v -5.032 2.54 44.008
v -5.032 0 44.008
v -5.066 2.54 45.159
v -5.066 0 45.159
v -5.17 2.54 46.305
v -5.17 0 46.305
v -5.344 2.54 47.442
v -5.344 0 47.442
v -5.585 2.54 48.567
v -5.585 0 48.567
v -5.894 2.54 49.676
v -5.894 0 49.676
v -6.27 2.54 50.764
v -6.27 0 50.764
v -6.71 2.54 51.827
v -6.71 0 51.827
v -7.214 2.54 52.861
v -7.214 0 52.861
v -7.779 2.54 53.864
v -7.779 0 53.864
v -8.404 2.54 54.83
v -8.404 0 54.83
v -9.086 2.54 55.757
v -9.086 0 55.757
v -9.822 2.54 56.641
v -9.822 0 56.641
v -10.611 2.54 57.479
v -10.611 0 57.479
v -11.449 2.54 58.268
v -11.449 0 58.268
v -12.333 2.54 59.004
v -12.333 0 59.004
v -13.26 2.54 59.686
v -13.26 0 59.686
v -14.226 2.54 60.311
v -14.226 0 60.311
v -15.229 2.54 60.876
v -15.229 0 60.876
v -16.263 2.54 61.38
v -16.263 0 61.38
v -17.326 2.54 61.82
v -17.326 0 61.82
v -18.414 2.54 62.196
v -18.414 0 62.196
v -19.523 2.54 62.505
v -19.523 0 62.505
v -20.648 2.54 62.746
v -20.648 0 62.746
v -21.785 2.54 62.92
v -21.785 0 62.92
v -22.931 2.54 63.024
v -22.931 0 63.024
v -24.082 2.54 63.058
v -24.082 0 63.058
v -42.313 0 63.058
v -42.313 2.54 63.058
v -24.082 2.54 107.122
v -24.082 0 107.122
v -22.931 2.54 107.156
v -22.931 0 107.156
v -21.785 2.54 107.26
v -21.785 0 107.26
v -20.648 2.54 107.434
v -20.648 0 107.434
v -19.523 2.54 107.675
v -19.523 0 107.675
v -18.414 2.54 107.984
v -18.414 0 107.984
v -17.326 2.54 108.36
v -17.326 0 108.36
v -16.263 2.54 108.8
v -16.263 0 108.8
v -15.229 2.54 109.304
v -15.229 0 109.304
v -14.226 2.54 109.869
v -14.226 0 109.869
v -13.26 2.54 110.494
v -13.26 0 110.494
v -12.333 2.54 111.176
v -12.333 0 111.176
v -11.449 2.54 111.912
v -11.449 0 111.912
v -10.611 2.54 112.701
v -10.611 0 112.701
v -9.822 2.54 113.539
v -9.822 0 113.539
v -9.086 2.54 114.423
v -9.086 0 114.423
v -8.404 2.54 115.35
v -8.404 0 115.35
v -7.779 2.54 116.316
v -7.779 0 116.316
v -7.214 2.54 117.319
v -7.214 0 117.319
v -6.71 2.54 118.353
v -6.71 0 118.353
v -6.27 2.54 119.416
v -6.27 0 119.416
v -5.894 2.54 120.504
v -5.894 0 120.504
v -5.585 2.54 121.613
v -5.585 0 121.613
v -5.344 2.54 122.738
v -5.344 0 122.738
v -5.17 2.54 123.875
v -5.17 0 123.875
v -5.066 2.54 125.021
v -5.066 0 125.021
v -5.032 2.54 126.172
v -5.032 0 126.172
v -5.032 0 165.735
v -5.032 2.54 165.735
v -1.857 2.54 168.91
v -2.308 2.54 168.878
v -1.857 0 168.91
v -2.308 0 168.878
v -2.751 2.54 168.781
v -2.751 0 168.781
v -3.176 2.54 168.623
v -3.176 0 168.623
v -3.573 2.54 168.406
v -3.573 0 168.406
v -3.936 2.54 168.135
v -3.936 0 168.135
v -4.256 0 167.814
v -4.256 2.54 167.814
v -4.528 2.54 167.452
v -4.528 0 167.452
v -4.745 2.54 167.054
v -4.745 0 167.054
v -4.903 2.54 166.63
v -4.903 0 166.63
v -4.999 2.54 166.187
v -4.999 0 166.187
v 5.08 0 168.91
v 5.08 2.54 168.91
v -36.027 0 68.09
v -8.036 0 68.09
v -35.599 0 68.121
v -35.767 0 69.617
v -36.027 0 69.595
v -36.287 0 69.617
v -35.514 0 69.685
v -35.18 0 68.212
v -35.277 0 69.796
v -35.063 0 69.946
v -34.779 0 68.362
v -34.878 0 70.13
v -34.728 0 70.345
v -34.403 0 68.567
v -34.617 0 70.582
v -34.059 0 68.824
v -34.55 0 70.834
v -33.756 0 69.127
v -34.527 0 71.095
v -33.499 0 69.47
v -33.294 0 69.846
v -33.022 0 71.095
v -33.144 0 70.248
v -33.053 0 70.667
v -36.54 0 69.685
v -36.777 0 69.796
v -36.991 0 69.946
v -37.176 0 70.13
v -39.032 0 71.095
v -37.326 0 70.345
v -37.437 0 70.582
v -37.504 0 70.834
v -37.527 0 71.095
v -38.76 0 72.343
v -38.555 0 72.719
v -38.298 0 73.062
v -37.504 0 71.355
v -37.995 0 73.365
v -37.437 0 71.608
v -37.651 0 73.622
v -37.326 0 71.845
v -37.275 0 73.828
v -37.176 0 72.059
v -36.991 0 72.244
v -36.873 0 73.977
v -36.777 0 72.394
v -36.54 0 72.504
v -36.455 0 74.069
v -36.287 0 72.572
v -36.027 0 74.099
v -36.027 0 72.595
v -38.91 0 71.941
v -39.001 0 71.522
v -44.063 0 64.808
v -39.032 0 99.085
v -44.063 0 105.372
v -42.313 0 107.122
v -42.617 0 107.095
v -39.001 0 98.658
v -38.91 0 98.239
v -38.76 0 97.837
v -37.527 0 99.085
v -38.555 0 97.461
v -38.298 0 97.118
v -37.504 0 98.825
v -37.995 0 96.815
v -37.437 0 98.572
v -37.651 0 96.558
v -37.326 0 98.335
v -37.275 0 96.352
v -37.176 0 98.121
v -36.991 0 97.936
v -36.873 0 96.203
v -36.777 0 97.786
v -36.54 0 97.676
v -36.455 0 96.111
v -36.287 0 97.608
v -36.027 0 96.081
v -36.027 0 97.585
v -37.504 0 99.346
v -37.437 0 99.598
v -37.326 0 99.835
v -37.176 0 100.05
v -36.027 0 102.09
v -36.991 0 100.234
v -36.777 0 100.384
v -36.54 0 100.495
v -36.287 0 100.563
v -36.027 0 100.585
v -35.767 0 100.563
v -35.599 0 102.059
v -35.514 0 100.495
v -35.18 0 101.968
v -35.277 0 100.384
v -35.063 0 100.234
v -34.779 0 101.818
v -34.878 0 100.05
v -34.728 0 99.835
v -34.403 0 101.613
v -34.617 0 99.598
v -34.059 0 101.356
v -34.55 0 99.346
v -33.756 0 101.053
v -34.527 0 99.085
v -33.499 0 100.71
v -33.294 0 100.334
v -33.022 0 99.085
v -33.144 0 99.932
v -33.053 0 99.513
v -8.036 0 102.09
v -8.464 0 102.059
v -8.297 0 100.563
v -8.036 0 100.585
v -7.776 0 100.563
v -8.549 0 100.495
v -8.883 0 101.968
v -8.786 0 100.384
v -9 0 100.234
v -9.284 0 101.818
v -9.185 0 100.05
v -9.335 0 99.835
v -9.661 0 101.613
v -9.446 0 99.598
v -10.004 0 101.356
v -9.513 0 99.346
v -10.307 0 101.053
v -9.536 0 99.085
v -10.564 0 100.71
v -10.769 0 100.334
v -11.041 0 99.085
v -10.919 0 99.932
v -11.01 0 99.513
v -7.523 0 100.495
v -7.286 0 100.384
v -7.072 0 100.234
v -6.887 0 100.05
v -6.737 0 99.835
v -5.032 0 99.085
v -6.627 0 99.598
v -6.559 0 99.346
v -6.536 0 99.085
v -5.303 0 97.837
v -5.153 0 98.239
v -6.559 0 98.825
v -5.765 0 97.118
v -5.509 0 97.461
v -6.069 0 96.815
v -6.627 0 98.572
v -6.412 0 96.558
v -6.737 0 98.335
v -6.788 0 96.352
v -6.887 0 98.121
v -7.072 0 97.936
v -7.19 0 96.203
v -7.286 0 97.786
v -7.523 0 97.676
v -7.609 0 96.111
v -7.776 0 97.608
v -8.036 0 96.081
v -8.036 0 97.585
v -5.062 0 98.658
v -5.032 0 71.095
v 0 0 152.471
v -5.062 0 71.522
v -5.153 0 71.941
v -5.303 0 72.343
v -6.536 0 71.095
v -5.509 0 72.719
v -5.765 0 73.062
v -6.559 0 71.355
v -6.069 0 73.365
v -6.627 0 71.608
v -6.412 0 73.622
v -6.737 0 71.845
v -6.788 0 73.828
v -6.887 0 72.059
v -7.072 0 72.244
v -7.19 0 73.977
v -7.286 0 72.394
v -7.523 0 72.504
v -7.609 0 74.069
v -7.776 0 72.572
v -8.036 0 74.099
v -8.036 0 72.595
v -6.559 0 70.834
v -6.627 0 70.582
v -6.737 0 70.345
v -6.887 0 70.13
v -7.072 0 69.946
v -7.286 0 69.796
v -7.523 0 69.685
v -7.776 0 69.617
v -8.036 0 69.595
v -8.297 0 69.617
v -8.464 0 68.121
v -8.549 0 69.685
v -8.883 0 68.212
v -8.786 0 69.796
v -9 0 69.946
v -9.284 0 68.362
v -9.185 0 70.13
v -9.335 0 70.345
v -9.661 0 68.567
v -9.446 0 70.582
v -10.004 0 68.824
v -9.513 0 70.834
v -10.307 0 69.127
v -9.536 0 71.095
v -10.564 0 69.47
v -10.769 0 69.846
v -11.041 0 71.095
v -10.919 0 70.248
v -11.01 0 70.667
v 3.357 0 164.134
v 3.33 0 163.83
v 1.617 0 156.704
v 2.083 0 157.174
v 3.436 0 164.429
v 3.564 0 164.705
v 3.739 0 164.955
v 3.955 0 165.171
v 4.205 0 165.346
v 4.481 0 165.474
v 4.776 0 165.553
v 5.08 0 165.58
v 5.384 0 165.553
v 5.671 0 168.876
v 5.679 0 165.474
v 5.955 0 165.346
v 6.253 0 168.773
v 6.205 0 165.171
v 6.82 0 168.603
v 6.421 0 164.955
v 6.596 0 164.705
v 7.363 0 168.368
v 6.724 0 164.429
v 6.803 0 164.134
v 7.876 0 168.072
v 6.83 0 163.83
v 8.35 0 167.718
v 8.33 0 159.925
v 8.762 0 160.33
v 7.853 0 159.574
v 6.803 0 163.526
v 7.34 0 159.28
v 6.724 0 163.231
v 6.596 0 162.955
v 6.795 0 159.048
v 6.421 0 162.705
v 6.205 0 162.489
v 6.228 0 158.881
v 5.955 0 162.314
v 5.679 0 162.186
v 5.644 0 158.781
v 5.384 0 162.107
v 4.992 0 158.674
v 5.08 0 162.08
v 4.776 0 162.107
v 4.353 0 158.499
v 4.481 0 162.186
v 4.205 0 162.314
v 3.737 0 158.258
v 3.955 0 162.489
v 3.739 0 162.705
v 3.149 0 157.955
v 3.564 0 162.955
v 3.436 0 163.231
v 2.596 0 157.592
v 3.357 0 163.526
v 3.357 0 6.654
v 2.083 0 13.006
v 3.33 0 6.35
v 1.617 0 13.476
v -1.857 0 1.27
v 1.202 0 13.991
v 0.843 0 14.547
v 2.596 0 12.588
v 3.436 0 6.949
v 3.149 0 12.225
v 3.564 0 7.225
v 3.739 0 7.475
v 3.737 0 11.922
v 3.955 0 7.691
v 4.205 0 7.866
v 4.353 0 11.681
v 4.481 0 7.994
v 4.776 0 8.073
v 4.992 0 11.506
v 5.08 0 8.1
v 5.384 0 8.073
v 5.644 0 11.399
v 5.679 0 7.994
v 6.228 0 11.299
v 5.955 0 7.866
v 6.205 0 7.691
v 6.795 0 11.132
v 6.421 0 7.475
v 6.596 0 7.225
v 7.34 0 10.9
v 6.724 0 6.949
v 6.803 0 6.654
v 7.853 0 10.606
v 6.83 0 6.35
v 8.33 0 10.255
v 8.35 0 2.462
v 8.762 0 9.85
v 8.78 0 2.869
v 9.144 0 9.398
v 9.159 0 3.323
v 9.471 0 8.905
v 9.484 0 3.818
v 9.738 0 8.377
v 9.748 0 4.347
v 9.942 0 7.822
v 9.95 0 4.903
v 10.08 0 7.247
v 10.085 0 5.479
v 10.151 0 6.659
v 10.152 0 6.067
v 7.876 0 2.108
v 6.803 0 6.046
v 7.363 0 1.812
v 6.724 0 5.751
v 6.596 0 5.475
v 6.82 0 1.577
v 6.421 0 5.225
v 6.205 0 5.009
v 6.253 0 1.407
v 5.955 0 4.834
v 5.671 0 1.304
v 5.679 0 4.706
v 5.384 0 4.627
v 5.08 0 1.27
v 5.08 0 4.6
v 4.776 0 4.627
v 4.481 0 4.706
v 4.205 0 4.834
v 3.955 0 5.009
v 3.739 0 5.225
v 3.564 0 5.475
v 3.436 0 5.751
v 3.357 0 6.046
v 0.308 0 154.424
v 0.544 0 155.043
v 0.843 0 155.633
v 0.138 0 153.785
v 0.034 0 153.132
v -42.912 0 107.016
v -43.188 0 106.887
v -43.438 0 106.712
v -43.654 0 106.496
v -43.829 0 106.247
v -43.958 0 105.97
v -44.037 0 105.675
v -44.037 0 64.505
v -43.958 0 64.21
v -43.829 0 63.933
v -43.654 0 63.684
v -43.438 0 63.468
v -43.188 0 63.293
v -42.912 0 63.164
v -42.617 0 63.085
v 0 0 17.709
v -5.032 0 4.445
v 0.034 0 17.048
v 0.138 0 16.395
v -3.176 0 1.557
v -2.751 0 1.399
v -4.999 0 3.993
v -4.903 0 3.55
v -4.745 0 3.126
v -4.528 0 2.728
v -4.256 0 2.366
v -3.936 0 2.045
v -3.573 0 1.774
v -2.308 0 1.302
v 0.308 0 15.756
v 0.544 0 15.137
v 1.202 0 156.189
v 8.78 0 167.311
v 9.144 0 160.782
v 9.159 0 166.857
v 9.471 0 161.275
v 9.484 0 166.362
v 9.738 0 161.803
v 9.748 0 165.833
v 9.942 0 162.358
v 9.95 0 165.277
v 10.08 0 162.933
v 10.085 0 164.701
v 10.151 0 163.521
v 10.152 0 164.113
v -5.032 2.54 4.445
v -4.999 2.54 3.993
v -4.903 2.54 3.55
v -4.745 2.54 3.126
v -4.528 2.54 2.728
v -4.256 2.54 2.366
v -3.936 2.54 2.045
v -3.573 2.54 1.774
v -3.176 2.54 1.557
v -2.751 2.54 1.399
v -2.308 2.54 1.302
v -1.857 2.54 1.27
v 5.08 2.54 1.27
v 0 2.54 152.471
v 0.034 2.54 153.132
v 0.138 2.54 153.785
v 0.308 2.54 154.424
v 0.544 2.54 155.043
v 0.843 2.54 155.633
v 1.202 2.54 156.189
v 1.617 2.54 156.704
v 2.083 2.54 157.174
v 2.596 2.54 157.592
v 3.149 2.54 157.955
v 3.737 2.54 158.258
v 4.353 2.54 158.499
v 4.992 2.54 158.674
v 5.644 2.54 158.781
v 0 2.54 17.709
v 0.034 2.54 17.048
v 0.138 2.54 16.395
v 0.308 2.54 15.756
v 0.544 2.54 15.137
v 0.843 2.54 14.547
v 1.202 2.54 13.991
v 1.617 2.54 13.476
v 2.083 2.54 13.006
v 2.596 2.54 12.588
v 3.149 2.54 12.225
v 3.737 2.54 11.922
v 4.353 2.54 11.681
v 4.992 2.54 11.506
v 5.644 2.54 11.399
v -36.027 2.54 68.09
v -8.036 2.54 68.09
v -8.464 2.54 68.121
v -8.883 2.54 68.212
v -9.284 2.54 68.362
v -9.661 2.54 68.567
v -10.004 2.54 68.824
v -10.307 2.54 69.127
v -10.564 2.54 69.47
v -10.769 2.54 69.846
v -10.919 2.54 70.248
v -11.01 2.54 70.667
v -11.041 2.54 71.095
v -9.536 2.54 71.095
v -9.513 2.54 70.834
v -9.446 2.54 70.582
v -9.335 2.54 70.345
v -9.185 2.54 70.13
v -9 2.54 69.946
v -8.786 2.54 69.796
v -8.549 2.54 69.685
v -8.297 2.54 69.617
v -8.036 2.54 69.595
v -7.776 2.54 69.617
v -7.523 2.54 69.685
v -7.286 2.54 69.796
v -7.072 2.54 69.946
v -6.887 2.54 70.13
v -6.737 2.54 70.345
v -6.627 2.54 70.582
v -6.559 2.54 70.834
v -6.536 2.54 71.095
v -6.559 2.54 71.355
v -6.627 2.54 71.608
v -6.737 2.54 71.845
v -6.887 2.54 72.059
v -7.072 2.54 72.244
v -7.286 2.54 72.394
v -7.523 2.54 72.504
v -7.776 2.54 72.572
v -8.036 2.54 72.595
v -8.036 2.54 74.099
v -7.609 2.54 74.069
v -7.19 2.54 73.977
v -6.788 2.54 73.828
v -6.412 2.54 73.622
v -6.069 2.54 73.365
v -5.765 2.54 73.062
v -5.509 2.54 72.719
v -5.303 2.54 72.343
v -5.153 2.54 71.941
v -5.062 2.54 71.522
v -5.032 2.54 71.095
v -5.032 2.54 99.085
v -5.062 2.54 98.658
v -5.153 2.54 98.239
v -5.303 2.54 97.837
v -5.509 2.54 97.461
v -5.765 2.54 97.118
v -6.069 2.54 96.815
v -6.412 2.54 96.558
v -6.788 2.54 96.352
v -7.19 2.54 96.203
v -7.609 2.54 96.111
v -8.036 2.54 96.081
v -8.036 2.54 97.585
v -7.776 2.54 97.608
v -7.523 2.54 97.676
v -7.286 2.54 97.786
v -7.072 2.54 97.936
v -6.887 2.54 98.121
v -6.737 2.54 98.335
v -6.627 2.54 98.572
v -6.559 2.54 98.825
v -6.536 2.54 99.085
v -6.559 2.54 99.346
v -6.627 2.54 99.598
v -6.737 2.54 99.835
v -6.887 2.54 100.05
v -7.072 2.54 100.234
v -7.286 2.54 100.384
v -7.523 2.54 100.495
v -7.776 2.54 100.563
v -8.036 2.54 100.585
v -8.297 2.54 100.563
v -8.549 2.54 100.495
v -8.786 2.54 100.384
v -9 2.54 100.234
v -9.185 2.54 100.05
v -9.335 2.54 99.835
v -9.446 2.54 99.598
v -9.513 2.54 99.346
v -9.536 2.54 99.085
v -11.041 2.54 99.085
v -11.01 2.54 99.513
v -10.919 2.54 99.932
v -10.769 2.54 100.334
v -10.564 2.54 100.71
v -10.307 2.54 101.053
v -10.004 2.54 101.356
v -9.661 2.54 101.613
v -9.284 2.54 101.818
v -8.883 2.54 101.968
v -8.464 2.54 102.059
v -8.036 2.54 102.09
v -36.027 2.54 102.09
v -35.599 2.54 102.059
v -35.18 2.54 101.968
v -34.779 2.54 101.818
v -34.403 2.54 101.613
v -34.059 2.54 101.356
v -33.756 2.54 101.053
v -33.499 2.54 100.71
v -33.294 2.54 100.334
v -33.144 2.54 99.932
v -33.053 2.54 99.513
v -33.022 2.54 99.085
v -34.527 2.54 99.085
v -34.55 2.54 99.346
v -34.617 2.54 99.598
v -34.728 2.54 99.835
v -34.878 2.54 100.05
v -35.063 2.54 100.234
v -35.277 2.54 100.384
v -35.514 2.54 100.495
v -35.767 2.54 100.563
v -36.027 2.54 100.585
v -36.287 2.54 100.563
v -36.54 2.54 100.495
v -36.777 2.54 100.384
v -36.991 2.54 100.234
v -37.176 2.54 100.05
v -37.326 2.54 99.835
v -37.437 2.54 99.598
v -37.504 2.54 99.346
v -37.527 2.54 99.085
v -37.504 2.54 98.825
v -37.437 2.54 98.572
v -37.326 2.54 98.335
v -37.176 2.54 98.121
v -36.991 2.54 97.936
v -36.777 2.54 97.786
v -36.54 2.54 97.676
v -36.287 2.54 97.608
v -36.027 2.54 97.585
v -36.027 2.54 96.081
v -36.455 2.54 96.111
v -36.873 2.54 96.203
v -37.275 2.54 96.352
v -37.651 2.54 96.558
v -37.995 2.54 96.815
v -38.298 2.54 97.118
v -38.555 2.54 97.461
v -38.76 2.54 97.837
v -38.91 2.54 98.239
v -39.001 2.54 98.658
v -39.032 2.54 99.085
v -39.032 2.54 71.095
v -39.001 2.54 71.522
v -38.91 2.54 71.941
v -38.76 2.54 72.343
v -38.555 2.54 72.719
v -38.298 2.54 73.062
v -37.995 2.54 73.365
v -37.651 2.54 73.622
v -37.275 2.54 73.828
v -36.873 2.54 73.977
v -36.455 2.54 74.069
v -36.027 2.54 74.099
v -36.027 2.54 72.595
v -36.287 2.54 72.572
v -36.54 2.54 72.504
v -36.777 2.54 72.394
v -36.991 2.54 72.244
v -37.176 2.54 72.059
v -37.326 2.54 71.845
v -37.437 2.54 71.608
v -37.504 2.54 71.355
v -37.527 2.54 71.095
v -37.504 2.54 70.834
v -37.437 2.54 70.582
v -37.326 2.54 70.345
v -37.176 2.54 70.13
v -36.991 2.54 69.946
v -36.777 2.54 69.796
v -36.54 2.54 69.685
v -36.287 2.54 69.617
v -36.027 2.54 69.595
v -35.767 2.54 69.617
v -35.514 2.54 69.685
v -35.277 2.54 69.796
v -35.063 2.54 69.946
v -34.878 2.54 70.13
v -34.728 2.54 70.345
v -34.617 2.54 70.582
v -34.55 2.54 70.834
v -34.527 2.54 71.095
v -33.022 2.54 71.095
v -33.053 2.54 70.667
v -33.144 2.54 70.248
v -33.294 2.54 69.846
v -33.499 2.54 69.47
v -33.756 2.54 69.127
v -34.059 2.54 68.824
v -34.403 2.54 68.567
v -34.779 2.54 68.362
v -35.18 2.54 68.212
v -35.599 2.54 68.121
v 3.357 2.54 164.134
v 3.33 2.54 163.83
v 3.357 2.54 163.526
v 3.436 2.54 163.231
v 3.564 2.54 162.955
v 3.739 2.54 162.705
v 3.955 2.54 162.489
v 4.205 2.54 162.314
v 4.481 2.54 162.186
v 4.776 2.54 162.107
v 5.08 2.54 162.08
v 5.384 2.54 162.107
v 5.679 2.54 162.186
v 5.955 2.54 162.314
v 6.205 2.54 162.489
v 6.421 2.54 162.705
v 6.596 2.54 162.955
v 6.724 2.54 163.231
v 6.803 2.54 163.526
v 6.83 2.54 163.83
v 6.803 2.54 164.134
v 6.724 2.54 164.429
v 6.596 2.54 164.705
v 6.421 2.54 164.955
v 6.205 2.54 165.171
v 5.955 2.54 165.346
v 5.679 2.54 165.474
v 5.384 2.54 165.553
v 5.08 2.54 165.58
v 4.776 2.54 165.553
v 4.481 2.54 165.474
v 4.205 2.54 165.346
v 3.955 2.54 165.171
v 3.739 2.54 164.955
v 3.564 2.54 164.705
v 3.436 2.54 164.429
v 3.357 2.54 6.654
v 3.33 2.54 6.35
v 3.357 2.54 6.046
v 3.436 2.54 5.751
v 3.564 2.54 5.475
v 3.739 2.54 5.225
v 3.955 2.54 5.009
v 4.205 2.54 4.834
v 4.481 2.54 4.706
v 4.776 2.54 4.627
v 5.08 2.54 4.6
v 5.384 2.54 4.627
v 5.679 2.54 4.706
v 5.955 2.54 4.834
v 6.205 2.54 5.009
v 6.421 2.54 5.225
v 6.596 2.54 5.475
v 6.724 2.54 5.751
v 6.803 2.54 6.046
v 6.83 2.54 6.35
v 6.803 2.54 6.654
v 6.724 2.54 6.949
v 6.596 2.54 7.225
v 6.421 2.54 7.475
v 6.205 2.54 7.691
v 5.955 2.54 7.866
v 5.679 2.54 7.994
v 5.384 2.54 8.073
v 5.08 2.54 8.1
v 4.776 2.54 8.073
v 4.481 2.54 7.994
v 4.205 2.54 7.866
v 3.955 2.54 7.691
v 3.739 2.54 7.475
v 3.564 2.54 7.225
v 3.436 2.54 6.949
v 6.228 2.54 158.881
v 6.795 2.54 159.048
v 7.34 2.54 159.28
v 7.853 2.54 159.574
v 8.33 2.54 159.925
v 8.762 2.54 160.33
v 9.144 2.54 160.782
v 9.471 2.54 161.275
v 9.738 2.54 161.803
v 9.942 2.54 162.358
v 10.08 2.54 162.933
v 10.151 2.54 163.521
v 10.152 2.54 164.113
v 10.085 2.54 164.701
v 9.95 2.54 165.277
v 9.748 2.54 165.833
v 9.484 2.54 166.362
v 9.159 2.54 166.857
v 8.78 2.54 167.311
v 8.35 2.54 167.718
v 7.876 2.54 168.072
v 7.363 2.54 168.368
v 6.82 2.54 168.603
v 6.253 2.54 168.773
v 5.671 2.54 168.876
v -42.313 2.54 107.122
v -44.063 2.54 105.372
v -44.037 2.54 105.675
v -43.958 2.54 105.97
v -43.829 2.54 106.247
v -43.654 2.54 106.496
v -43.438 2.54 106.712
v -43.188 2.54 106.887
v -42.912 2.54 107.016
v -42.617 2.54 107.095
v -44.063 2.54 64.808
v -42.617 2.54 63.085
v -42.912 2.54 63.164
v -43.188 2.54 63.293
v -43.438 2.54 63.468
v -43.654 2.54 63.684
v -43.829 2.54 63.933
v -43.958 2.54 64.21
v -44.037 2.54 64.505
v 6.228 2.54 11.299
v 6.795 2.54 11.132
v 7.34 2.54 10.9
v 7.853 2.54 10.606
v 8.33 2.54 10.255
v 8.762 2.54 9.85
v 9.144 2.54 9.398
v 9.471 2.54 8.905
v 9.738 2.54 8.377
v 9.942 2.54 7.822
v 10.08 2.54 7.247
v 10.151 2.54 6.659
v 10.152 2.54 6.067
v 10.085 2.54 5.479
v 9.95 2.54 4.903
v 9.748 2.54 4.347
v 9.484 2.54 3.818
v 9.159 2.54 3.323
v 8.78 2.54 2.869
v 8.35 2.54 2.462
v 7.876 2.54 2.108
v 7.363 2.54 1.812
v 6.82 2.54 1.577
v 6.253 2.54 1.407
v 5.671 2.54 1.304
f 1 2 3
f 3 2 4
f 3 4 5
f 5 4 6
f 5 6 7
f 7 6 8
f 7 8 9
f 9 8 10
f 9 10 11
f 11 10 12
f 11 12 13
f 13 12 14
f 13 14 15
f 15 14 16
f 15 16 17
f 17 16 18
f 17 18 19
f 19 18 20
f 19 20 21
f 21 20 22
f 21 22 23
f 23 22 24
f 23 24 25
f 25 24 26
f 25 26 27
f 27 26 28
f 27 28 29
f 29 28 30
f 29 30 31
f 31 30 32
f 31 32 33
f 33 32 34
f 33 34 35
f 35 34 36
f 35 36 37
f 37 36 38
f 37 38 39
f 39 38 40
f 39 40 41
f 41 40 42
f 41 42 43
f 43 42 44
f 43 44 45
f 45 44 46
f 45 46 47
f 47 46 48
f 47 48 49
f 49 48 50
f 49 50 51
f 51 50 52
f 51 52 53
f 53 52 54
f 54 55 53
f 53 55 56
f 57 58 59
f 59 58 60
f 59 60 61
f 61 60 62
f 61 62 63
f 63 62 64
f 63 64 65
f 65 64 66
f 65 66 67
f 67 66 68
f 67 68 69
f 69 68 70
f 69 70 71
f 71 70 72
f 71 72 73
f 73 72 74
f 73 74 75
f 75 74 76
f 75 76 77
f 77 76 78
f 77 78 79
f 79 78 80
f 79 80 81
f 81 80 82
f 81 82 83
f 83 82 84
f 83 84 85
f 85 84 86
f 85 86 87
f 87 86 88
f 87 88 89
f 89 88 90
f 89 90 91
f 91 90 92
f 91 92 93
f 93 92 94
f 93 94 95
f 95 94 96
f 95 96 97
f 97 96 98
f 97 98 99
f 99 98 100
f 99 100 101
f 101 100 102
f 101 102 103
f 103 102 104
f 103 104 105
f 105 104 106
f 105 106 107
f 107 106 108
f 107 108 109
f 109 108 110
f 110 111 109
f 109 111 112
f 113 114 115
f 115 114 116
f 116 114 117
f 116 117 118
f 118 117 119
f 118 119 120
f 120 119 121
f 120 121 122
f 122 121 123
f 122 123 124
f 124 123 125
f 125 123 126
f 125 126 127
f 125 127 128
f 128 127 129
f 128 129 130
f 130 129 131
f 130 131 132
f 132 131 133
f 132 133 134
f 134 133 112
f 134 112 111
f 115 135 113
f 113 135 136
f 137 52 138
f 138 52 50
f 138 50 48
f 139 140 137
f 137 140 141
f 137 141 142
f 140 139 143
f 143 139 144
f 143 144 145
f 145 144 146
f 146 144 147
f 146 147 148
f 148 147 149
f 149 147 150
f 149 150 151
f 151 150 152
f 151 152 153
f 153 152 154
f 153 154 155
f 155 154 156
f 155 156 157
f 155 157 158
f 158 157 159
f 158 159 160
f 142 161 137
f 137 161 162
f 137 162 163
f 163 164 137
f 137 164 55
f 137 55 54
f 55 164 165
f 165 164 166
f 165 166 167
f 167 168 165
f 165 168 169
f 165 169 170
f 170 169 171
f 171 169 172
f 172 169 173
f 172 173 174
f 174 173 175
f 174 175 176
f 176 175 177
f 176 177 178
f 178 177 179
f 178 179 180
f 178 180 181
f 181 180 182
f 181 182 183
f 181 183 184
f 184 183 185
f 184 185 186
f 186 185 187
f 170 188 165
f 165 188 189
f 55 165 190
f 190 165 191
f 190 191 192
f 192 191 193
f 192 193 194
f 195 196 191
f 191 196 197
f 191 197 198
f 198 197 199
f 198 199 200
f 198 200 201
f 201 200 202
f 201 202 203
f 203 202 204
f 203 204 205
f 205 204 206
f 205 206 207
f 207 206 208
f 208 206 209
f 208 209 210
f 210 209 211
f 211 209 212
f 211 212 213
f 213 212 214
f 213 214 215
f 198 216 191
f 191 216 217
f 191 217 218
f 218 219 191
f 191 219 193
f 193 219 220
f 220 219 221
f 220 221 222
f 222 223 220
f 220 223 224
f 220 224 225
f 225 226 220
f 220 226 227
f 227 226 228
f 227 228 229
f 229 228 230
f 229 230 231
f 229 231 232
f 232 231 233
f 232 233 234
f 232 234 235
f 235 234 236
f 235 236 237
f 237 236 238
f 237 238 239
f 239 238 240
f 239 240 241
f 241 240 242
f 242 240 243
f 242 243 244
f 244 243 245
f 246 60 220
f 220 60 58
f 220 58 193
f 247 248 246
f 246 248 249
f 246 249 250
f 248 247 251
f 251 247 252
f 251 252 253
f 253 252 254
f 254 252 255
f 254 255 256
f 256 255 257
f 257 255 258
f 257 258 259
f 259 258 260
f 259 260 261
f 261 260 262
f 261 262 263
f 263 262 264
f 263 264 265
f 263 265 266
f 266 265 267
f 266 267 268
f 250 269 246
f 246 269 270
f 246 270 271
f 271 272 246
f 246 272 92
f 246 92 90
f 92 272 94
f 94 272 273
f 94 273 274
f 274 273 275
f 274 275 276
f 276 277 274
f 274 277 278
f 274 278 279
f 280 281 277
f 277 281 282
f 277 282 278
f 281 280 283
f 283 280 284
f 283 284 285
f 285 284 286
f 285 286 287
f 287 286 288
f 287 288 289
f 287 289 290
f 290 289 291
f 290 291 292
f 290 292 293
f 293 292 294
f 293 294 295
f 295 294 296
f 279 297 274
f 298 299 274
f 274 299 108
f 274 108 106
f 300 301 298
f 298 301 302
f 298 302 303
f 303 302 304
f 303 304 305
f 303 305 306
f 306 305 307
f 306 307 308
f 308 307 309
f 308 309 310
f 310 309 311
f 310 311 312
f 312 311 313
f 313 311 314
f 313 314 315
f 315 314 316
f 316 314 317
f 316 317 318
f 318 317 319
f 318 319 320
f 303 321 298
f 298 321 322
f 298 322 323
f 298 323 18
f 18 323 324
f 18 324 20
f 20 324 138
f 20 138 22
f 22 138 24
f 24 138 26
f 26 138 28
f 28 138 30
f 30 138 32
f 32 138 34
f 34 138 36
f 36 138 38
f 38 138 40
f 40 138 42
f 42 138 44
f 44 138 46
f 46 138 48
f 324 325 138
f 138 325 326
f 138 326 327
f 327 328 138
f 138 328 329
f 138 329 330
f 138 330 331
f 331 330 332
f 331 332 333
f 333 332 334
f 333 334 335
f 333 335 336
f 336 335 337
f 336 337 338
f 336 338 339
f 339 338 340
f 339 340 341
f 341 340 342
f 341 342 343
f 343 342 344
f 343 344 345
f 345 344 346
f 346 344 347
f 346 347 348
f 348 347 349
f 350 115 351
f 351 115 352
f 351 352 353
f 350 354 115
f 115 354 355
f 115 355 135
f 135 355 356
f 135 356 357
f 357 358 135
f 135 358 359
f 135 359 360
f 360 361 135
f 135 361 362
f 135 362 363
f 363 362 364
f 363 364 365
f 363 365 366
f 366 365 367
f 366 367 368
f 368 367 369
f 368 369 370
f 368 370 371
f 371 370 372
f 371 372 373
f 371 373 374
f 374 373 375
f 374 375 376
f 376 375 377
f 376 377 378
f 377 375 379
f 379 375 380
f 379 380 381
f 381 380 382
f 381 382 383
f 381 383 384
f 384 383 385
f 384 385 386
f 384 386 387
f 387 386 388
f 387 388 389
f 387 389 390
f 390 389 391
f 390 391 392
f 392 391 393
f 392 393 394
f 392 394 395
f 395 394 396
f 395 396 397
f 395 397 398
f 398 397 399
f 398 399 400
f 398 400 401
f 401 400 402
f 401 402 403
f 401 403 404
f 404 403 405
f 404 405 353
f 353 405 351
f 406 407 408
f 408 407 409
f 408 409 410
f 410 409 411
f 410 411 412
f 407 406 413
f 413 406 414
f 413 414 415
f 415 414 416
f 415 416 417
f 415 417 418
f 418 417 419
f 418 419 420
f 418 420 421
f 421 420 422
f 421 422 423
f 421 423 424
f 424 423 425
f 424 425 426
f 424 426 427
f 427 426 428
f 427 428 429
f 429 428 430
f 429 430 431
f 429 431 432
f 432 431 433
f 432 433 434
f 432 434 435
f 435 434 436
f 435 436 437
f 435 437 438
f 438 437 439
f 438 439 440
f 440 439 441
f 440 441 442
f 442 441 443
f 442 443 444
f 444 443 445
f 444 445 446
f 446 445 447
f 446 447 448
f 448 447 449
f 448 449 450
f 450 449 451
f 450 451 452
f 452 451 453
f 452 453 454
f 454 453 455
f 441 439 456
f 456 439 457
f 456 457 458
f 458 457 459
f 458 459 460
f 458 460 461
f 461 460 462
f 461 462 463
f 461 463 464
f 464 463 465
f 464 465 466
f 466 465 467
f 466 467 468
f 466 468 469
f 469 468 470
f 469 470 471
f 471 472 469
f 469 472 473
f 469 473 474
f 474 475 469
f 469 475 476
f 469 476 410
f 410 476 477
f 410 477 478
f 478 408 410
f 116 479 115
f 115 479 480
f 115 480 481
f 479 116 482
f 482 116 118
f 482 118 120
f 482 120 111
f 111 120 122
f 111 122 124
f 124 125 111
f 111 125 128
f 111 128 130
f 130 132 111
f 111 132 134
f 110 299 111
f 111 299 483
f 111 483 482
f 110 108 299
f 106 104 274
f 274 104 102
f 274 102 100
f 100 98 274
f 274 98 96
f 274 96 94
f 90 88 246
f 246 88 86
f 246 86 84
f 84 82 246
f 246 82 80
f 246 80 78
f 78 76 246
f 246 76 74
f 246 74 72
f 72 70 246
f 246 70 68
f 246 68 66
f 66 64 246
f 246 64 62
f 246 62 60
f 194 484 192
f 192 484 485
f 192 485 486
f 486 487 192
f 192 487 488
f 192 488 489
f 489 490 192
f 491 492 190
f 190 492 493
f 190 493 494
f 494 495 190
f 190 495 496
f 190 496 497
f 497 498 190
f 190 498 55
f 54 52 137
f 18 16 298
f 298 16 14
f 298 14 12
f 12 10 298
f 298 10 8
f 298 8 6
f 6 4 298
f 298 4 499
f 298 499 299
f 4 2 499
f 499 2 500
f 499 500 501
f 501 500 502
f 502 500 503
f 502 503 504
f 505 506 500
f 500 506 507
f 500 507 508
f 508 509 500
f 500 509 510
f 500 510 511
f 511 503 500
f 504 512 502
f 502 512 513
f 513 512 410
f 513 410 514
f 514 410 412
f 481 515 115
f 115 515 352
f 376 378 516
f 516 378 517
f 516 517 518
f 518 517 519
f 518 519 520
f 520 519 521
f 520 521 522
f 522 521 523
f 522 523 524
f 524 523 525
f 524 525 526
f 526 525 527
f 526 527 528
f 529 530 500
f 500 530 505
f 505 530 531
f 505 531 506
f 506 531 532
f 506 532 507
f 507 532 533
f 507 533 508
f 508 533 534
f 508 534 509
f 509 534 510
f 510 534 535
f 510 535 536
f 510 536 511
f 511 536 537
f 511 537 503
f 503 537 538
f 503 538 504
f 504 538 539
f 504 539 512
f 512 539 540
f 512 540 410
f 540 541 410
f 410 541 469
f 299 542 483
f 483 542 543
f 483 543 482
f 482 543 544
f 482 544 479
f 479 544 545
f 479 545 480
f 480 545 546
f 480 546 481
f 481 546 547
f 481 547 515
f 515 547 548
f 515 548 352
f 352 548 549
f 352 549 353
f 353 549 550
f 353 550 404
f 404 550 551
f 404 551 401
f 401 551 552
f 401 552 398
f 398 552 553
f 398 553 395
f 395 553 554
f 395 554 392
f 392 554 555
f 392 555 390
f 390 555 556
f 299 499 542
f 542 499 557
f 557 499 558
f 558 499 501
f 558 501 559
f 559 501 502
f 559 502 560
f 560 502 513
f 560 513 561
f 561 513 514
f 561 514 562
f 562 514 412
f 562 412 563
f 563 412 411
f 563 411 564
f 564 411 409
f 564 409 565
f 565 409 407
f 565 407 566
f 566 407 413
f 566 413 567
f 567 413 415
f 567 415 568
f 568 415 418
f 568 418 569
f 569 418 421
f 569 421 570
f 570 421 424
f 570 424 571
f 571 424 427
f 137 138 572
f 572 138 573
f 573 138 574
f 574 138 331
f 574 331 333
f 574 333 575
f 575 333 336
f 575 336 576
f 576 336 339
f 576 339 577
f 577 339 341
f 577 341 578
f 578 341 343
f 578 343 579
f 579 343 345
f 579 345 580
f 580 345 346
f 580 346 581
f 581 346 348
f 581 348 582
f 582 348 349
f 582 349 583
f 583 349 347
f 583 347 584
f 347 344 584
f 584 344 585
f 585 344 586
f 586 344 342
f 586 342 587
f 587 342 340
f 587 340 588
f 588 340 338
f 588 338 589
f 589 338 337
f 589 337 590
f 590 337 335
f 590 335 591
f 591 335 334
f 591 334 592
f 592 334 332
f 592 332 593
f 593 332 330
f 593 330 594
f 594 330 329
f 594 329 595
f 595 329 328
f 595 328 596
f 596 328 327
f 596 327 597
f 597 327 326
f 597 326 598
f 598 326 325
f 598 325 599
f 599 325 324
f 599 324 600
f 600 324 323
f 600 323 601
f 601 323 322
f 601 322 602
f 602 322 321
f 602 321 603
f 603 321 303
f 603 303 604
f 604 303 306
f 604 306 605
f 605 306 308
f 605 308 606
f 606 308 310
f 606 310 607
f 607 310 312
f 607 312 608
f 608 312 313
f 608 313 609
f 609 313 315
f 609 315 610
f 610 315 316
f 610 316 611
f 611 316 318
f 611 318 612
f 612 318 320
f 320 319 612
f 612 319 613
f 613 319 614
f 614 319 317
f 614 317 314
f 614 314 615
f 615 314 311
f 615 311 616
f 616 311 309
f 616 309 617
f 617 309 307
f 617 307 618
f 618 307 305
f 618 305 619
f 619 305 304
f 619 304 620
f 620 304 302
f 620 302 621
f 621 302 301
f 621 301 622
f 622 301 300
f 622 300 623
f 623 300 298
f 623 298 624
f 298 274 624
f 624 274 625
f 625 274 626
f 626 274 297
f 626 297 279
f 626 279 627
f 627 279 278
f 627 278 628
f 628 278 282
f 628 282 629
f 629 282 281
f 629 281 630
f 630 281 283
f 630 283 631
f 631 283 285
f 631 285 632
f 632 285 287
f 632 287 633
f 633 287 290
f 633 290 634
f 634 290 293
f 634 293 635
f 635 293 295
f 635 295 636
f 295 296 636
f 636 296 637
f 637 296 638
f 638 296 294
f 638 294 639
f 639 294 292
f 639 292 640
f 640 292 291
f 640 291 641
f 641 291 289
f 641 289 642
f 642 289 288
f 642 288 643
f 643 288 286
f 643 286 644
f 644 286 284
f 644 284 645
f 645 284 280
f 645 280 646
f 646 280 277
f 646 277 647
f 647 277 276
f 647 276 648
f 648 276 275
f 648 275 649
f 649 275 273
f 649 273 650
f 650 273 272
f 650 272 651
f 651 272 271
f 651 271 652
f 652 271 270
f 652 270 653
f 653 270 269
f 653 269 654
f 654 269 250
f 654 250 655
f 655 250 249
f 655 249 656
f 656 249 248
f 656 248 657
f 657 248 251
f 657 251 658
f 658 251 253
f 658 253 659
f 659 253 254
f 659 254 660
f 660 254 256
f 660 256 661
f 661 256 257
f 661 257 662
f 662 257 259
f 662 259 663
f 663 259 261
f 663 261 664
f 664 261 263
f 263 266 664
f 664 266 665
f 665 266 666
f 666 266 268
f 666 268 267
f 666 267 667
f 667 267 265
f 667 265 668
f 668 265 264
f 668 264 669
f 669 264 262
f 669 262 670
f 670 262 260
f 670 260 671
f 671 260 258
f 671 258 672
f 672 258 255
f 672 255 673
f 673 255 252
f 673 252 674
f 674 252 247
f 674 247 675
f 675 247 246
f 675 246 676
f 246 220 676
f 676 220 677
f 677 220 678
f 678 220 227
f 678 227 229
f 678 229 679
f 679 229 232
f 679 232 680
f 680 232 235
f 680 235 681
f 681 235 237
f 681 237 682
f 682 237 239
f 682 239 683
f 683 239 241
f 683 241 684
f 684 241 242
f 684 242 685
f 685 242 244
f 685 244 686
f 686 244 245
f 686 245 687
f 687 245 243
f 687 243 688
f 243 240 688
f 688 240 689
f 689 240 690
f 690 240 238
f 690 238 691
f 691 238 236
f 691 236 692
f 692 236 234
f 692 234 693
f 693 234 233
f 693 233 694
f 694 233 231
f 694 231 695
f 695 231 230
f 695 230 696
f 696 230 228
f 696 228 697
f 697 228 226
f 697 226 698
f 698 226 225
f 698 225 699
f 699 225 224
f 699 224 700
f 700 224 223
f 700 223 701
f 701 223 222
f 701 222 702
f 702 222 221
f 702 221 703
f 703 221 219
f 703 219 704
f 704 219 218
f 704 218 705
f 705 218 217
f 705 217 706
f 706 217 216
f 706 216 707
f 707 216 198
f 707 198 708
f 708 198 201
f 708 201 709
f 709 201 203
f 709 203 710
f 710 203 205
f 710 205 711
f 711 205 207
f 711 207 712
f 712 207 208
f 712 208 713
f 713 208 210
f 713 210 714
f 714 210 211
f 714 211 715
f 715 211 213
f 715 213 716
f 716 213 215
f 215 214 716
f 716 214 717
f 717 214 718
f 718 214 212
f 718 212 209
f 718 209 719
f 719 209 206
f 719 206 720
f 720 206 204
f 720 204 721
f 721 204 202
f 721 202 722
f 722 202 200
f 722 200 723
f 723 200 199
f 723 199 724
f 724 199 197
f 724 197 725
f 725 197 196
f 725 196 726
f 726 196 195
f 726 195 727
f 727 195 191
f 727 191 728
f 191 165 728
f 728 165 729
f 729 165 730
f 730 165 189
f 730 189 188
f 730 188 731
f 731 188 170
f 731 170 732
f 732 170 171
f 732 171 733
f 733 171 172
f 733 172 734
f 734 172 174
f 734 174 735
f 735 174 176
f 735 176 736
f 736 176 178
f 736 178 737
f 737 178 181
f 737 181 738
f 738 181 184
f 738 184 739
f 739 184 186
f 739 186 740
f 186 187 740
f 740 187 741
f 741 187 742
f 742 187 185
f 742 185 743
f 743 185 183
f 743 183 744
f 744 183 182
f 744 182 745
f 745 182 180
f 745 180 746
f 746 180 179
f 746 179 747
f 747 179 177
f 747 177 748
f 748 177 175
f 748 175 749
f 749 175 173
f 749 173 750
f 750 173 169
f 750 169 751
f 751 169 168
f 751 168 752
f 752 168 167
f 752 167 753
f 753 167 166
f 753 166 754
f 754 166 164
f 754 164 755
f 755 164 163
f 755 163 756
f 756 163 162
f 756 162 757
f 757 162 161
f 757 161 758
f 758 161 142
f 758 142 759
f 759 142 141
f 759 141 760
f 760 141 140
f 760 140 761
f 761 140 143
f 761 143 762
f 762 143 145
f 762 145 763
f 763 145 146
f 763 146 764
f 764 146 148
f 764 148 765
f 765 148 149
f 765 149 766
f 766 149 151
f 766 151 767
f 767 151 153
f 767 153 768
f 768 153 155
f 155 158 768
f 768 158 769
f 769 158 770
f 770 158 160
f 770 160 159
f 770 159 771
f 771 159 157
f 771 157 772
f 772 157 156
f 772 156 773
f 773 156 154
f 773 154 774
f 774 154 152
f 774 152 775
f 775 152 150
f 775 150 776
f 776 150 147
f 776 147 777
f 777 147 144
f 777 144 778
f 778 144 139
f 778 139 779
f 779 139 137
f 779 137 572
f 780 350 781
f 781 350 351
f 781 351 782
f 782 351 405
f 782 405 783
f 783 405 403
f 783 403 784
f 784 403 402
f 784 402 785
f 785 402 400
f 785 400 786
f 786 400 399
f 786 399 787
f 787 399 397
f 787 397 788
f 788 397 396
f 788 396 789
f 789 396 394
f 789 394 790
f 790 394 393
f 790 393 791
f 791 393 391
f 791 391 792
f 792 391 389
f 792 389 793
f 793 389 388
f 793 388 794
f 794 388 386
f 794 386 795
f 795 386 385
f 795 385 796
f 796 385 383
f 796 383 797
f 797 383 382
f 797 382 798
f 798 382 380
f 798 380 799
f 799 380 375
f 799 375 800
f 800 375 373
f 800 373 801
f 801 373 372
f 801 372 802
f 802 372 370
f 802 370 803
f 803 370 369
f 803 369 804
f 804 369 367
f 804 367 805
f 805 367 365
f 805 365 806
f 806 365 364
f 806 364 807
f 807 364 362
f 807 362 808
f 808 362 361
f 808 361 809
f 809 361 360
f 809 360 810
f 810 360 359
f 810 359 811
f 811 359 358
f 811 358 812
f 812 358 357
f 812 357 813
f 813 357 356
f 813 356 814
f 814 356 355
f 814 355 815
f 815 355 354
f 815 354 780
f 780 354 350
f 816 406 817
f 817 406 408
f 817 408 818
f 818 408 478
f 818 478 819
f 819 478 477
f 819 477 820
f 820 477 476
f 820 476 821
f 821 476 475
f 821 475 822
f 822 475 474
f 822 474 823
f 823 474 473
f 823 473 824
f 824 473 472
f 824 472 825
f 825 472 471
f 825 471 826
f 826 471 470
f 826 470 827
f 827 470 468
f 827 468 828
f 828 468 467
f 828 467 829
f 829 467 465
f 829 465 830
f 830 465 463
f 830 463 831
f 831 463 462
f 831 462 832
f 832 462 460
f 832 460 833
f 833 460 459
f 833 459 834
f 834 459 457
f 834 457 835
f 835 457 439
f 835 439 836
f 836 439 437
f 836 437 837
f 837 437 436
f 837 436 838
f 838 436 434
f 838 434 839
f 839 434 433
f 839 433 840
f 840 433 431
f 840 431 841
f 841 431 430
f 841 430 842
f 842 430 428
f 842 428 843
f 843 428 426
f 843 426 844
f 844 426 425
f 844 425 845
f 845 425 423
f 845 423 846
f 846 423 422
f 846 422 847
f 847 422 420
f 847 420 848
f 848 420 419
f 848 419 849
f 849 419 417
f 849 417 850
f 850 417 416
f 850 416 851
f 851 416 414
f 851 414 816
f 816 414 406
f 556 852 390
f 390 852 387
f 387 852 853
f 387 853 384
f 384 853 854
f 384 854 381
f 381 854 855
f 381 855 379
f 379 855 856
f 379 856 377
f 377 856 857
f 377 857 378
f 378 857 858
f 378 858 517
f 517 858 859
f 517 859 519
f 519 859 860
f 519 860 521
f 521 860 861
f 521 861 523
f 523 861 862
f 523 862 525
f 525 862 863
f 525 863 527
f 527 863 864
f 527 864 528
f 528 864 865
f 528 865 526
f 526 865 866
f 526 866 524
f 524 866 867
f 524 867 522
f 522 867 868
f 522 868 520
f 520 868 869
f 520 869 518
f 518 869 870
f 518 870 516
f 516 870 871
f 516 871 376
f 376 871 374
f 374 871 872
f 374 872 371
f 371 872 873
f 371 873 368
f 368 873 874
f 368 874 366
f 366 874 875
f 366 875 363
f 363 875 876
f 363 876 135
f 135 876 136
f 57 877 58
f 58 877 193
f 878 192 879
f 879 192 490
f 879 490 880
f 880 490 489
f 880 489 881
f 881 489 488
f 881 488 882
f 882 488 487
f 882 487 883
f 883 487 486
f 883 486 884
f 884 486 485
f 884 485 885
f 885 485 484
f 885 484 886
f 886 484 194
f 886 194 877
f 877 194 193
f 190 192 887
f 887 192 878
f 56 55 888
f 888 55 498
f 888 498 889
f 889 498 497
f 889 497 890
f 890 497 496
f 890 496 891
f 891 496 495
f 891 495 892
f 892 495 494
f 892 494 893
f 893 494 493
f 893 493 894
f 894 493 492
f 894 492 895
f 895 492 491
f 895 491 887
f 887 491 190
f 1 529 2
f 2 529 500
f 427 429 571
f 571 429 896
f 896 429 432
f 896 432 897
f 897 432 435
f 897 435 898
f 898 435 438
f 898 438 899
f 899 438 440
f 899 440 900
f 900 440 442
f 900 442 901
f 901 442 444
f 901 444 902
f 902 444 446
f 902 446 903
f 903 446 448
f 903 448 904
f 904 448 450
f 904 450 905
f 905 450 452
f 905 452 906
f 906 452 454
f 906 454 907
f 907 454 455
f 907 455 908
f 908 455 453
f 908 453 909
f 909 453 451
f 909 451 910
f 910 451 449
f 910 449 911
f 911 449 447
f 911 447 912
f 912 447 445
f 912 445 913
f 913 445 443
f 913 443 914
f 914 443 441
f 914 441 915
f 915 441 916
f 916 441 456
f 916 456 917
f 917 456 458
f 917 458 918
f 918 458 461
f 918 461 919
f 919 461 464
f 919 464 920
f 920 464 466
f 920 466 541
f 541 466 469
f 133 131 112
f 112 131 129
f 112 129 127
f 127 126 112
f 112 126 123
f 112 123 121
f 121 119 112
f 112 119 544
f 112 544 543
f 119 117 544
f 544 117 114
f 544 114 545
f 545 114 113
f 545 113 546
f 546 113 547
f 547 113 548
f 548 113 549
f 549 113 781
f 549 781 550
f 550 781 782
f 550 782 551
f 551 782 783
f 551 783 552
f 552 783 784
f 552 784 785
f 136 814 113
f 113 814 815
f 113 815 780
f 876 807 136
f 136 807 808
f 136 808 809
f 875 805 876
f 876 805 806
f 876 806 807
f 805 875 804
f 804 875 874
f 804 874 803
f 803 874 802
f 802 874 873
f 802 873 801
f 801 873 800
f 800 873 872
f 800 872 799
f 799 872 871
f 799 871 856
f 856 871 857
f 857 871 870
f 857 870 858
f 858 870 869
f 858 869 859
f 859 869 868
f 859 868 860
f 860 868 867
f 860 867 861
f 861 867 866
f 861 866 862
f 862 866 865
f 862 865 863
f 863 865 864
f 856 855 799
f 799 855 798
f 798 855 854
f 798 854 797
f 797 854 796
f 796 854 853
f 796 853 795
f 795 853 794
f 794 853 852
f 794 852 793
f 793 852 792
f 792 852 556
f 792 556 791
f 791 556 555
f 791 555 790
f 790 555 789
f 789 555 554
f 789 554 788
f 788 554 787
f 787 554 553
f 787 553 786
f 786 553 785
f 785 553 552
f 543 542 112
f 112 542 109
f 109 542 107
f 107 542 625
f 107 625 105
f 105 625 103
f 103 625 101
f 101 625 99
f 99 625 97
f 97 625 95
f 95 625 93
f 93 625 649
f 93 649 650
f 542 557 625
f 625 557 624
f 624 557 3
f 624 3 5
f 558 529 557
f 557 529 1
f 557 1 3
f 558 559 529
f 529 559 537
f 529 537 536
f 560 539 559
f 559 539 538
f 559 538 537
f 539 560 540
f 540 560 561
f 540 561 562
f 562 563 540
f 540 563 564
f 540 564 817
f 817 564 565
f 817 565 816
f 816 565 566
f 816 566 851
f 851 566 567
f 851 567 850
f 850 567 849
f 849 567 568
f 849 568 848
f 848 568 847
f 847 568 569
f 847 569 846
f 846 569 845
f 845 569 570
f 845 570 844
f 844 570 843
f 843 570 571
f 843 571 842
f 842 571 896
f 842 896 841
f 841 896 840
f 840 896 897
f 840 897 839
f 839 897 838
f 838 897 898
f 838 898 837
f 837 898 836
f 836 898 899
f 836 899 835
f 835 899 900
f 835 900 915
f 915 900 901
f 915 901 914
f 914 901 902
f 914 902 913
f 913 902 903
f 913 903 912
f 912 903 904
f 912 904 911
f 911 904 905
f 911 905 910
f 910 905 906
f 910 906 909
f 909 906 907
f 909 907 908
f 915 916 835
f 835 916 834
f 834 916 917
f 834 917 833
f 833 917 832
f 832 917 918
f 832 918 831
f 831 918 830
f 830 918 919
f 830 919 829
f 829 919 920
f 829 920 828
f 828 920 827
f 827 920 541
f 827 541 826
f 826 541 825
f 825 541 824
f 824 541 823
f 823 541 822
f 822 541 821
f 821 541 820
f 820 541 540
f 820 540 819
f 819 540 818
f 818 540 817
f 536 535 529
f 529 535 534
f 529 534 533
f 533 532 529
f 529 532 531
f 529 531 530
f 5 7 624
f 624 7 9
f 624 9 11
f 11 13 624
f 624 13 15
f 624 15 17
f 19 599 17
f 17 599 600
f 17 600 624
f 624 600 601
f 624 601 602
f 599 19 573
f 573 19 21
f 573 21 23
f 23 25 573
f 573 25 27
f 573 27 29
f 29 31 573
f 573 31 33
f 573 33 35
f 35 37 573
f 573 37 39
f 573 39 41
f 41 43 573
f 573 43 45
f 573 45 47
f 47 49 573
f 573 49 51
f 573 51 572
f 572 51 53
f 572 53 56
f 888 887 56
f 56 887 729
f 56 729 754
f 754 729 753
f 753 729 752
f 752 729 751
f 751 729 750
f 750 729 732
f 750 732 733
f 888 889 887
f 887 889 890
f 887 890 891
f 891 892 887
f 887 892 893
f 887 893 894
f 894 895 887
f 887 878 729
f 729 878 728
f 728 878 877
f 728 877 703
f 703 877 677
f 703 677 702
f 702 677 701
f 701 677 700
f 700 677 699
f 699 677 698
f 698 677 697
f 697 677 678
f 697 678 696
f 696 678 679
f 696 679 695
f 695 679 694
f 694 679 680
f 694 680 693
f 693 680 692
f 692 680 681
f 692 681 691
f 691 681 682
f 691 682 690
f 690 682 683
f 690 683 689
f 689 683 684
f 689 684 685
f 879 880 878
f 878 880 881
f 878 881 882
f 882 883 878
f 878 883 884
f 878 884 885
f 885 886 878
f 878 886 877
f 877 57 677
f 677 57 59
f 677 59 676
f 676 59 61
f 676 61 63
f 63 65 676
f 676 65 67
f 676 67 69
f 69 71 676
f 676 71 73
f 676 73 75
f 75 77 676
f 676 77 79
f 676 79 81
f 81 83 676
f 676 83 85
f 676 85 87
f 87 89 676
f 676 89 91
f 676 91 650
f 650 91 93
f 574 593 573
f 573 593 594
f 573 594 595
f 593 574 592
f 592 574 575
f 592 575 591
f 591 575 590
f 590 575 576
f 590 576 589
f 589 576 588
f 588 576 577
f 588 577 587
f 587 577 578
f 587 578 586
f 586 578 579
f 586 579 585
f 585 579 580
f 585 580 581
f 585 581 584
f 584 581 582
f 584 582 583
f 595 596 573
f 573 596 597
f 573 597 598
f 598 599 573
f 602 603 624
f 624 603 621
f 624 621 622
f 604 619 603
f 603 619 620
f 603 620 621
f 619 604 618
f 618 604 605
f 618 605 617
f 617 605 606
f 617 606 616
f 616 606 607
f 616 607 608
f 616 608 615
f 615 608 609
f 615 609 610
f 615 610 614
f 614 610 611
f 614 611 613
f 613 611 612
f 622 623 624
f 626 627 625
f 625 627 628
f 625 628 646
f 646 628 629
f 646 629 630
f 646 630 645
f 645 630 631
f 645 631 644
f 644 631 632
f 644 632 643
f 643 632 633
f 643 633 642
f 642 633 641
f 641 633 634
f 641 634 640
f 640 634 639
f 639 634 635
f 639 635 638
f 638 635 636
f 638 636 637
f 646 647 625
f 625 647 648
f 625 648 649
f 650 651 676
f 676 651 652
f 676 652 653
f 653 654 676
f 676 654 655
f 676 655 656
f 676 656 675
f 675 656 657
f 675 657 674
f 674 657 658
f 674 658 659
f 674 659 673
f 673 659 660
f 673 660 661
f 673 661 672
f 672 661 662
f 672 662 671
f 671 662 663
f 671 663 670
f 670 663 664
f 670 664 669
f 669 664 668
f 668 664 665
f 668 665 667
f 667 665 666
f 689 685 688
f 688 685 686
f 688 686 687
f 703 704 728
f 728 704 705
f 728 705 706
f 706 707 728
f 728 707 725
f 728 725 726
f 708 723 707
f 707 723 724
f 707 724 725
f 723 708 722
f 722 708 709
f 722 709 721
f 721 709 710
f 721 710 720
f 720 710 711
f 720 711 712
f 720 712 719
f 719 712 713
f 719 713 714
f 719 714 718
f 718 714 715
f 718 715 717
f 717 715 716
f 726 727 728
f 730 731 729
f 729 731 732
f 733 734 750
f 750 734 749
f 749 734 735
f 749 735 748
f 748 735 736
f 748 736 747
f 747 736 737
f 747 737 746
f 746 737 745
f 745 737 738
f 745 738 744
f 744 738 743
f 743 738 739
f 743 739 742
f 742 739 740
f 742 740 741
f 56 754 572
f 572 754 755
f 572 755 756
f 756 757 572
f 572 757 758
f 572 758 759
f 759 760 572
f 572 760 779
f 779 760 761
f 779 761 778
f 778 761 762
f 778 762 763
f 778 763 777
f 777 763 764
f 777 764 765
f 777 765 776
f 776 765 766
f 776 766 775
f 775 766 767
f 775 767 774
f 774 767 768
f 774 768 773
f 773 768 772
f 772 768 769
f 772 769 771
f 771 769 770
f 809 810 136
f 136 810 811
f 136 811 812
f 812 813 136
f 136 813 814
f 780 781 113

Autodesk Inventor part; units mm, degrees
ref_plane "YZ Plane" through (0, 0, 0) normal (1, 0, 0) x (0, 1, 0)
ref_plane "XZ Plane" through (0, 0, 0) normal (0, 1, 0) x (-1, 0, 0)
ref_plane "XY Plane" through (0, 0, 0) normal (0, 0, 1) x (1, 0, 0)
sketch "Sketch1" plane through (0, 0, 0) normal (0, 1, 0) x (-1, 0, 0)
  circle A0 centre (-5.08, 6.35) radius 1.75
  circle A1 centre (-5.08, 6.35) radius 1.75
  arc A2 (-5.08, 11.43) -> (-5.08, 1.27) centre (-5.08, 6.35) ccw
  line L0 (0, 11.43) -> (0, 59.8834)
  line L1 (-5.08, 1.27) -> (5.0316, 1.27)
  line L2 (5.0316, 1.27) -> (5.0316, 63.0584)
  line L3 (-5.08, 11.43) -> (0, 11.43)
  line L4 (0, 11.43) -> (0, 59.8834)
  line L5 (5.0316, 63.0584) -> (42.3132, 63.0584)
  line L6 (5.0316, 63.0584) -> (42.3132, 63.0584)
  line L7 (44.0632, 64.8084) -> (44.0632, 105.3716)
  line L8 (44.0632, 64.8084) -> (44.0632, 105.3716)
  line L9 (42.3132, 107.1216) -> (5.0316, 107.1216)
  line L10 (42.3132, 107.1216) -> (5.0316, 107.1216)
  line L11 (5.0316, 107.1216) -> (5.0316, 168.91)
  circle A3 centre (-5.08, 163.83) radius 1.75
  circle A4 centre (-5.08, 163.83) radius 1.75
  arc A5 (-5.08, 168.91) -> (-5.08, 158.75) centre (-5.08, 163.83) ccw
  line L12 (0, 110.2966) -> (0, 158.75)
  line L13 (-5.08, 168.91) -> (5.0316, 168.91)
  line L14 (0, 59.8834) -> (0, 158.75)
  line L15 (0, 158.75) -> (-5.08, 158.75)
  arc A6 (8.0362, 72.5946) -> (9.5362, 71.0946) centre (8.0362, 71.0946) ccw
  arc A7 (8.0362, 72.5946) -> (9.5362, 71.0946) centre (8.0362, 71.0946) ccw
  arc A8 (34.527, 71.0946) -> (36.027, 72.5946) centre (36.027, 71.0946) ccw
  arc A9 (34.527, 71.0946) -> (36.027, 72.5946) centre (36.027, 71.0946) ccw
  arc A10 (36.027, 97.5854) -> (34.527, 99.0854) centre (36.027, 99.0854) ccw
  arc A11 (36.027, 97.5854) -> (34.527, 99.0854) centre (36.027, 99.0854) ccw
  arc A12 (9.5362, 99.0854) -> (8.0362, 97.5854) centre (8.0362, 99.0854) ccw
  arc A13 (9.5362, 99.0854) -> (8.0362, 97.5854) centre (8.0362, 99.0854) ccw
  arc A14 (8.0362, 68.09) -> (11.0408, 71.0946) centre (8.0362, 71.0946) ccw
  arc A15 (33.0224, 71.0946) -> (36.027, 68.09) centre (36.027, 71.0946) ccw
  line L16 (11.0408, 99.0854) -> (9.5362, 99.0854)
  line L17 (36.027, 68.09) -> (8.0362, 68.09)
  line L18 (8.0362, 68.09) -> (36.027, 68.09)
  line L19 (5.0316, 99.0854) -> (5.0316, 71.0946)
  line L20 (5.0316, 71.0946) -> (5.0316, 99.0854)
  line L21 (8.0362, 102.09) -> (36.027, 102.09)
  line L22 (8.0362, 102.09) -> (36.027, 102.09)
  line L23 (39.0316, 71.0946) -> (39.0316, 99.0854)
  line L24 (39.0316, 71.0946) -> (39.0316, 99.0854)
  line L25 (33.0224, 71.0946) -> (34.527, 71.0946)
  line L26 (34.527, 71.0946) -> (33.0224, 71.0946)
  line L27 (36.027, 72.5946) -> (36.027, 74.0992)
  line L28 (36.027, 72.5946) -> (36.027, 74.0992)
  line L29 (9.5362, 71.0946) -> (11.0408, 71.0946)
  line L30 (11.0408, 71.0946) -> (9.5362, 71.0946)
  line L31 (8.0362, 74.0992) -> (8.0362, 72.5946)
  line L32 (8.0362, 72.5946) -> (8.0362, 74.0992)
  line L33 (8.0362, 96.0808) -> (8.0362, 97.5854)
  line L34 (8.0362, 96.0808) -> (8.0362, 97.5854)
  arc A16 (11.0408, 99.0854) -> (8.0362, 102.09) centre (8.0362, 99.0854) ccw
  line L35 (9.5362, 99.0854) -> (11.0408, 99.0854)
  line L36 (36.027, 97.5854) -> (36.027, 96.0808)
  line L37 (36.027, 96.0808) -> (36.027, 97.5854)
  line L38 (33.0224, 99.0854) -> (34.527, 99.0854)
  line L39 (34.527, 99.0854) -> (33.0224, 99.0854)
  arc A17 (36.027, 96.0808) -> (39.0316, 99.0854) centre (36.027, 99.0854) ccw
  arc A18 (36.027, 102.09) -> (33.0224, 99.0854) centre (36.027, 99.0854) ccw
  arc A19 (33.0224, 71.0946) -> (36.027, 68.09) centre (36.027, 71.0946) ccw
  arc A20 (39.0316, 71.0946) -> (36.027, 74.0992) centre (36.027, 71.0946) ccw
  arc A21 (8.0362, 68.09) -> (11.0408, 71.0946) centre (8.0362, 71.0946) ccw
  arc A22 (8.0362, 74.0992) -> (5.0316, 71.0946) centre (8.0362, 71.0946) ccw
  arc A23 (11.0408, 99.0854) -> (8.0362, 102.09) centre (8.0362, 99.0854) ccw
  arc A24 (5.0316, 99.0854) -> (8.0362, 96.0808) centre (8.0362, 99.0854) ccw
  arc A25 (44.0632, 105.3716) -> (42.3132, 107.1216) centre (42.3132, 105.3716) ccw
  arc A26 (42.3132, 63.0584) -> (44.0632, 64.8084) centre (42.3132, 64.8084) ccw
  point P0 (0, 0)
  point P1 (0, 0)
  point P2 (3.175, 59.8834)
extrude "Extrusion1" add sketch "Sketch1" along normal blind 2.54
fillet "Fillet1" radius 6.35 2 edges at (0, 1.27, 11.43) (0, 1.27, 158.75)
fillet "Fillet2" radius 3.175 2 edges at (-5.0316, 1.27, 1.27) (-5.0316, 1.27, 168.91)
fillet "Fillet3" radius 19.05 2 edges at (-5.0316, 1.27, 107.1216) (-5.0316, 1.27, 63.0584)
properties part number "CameraBracket"
